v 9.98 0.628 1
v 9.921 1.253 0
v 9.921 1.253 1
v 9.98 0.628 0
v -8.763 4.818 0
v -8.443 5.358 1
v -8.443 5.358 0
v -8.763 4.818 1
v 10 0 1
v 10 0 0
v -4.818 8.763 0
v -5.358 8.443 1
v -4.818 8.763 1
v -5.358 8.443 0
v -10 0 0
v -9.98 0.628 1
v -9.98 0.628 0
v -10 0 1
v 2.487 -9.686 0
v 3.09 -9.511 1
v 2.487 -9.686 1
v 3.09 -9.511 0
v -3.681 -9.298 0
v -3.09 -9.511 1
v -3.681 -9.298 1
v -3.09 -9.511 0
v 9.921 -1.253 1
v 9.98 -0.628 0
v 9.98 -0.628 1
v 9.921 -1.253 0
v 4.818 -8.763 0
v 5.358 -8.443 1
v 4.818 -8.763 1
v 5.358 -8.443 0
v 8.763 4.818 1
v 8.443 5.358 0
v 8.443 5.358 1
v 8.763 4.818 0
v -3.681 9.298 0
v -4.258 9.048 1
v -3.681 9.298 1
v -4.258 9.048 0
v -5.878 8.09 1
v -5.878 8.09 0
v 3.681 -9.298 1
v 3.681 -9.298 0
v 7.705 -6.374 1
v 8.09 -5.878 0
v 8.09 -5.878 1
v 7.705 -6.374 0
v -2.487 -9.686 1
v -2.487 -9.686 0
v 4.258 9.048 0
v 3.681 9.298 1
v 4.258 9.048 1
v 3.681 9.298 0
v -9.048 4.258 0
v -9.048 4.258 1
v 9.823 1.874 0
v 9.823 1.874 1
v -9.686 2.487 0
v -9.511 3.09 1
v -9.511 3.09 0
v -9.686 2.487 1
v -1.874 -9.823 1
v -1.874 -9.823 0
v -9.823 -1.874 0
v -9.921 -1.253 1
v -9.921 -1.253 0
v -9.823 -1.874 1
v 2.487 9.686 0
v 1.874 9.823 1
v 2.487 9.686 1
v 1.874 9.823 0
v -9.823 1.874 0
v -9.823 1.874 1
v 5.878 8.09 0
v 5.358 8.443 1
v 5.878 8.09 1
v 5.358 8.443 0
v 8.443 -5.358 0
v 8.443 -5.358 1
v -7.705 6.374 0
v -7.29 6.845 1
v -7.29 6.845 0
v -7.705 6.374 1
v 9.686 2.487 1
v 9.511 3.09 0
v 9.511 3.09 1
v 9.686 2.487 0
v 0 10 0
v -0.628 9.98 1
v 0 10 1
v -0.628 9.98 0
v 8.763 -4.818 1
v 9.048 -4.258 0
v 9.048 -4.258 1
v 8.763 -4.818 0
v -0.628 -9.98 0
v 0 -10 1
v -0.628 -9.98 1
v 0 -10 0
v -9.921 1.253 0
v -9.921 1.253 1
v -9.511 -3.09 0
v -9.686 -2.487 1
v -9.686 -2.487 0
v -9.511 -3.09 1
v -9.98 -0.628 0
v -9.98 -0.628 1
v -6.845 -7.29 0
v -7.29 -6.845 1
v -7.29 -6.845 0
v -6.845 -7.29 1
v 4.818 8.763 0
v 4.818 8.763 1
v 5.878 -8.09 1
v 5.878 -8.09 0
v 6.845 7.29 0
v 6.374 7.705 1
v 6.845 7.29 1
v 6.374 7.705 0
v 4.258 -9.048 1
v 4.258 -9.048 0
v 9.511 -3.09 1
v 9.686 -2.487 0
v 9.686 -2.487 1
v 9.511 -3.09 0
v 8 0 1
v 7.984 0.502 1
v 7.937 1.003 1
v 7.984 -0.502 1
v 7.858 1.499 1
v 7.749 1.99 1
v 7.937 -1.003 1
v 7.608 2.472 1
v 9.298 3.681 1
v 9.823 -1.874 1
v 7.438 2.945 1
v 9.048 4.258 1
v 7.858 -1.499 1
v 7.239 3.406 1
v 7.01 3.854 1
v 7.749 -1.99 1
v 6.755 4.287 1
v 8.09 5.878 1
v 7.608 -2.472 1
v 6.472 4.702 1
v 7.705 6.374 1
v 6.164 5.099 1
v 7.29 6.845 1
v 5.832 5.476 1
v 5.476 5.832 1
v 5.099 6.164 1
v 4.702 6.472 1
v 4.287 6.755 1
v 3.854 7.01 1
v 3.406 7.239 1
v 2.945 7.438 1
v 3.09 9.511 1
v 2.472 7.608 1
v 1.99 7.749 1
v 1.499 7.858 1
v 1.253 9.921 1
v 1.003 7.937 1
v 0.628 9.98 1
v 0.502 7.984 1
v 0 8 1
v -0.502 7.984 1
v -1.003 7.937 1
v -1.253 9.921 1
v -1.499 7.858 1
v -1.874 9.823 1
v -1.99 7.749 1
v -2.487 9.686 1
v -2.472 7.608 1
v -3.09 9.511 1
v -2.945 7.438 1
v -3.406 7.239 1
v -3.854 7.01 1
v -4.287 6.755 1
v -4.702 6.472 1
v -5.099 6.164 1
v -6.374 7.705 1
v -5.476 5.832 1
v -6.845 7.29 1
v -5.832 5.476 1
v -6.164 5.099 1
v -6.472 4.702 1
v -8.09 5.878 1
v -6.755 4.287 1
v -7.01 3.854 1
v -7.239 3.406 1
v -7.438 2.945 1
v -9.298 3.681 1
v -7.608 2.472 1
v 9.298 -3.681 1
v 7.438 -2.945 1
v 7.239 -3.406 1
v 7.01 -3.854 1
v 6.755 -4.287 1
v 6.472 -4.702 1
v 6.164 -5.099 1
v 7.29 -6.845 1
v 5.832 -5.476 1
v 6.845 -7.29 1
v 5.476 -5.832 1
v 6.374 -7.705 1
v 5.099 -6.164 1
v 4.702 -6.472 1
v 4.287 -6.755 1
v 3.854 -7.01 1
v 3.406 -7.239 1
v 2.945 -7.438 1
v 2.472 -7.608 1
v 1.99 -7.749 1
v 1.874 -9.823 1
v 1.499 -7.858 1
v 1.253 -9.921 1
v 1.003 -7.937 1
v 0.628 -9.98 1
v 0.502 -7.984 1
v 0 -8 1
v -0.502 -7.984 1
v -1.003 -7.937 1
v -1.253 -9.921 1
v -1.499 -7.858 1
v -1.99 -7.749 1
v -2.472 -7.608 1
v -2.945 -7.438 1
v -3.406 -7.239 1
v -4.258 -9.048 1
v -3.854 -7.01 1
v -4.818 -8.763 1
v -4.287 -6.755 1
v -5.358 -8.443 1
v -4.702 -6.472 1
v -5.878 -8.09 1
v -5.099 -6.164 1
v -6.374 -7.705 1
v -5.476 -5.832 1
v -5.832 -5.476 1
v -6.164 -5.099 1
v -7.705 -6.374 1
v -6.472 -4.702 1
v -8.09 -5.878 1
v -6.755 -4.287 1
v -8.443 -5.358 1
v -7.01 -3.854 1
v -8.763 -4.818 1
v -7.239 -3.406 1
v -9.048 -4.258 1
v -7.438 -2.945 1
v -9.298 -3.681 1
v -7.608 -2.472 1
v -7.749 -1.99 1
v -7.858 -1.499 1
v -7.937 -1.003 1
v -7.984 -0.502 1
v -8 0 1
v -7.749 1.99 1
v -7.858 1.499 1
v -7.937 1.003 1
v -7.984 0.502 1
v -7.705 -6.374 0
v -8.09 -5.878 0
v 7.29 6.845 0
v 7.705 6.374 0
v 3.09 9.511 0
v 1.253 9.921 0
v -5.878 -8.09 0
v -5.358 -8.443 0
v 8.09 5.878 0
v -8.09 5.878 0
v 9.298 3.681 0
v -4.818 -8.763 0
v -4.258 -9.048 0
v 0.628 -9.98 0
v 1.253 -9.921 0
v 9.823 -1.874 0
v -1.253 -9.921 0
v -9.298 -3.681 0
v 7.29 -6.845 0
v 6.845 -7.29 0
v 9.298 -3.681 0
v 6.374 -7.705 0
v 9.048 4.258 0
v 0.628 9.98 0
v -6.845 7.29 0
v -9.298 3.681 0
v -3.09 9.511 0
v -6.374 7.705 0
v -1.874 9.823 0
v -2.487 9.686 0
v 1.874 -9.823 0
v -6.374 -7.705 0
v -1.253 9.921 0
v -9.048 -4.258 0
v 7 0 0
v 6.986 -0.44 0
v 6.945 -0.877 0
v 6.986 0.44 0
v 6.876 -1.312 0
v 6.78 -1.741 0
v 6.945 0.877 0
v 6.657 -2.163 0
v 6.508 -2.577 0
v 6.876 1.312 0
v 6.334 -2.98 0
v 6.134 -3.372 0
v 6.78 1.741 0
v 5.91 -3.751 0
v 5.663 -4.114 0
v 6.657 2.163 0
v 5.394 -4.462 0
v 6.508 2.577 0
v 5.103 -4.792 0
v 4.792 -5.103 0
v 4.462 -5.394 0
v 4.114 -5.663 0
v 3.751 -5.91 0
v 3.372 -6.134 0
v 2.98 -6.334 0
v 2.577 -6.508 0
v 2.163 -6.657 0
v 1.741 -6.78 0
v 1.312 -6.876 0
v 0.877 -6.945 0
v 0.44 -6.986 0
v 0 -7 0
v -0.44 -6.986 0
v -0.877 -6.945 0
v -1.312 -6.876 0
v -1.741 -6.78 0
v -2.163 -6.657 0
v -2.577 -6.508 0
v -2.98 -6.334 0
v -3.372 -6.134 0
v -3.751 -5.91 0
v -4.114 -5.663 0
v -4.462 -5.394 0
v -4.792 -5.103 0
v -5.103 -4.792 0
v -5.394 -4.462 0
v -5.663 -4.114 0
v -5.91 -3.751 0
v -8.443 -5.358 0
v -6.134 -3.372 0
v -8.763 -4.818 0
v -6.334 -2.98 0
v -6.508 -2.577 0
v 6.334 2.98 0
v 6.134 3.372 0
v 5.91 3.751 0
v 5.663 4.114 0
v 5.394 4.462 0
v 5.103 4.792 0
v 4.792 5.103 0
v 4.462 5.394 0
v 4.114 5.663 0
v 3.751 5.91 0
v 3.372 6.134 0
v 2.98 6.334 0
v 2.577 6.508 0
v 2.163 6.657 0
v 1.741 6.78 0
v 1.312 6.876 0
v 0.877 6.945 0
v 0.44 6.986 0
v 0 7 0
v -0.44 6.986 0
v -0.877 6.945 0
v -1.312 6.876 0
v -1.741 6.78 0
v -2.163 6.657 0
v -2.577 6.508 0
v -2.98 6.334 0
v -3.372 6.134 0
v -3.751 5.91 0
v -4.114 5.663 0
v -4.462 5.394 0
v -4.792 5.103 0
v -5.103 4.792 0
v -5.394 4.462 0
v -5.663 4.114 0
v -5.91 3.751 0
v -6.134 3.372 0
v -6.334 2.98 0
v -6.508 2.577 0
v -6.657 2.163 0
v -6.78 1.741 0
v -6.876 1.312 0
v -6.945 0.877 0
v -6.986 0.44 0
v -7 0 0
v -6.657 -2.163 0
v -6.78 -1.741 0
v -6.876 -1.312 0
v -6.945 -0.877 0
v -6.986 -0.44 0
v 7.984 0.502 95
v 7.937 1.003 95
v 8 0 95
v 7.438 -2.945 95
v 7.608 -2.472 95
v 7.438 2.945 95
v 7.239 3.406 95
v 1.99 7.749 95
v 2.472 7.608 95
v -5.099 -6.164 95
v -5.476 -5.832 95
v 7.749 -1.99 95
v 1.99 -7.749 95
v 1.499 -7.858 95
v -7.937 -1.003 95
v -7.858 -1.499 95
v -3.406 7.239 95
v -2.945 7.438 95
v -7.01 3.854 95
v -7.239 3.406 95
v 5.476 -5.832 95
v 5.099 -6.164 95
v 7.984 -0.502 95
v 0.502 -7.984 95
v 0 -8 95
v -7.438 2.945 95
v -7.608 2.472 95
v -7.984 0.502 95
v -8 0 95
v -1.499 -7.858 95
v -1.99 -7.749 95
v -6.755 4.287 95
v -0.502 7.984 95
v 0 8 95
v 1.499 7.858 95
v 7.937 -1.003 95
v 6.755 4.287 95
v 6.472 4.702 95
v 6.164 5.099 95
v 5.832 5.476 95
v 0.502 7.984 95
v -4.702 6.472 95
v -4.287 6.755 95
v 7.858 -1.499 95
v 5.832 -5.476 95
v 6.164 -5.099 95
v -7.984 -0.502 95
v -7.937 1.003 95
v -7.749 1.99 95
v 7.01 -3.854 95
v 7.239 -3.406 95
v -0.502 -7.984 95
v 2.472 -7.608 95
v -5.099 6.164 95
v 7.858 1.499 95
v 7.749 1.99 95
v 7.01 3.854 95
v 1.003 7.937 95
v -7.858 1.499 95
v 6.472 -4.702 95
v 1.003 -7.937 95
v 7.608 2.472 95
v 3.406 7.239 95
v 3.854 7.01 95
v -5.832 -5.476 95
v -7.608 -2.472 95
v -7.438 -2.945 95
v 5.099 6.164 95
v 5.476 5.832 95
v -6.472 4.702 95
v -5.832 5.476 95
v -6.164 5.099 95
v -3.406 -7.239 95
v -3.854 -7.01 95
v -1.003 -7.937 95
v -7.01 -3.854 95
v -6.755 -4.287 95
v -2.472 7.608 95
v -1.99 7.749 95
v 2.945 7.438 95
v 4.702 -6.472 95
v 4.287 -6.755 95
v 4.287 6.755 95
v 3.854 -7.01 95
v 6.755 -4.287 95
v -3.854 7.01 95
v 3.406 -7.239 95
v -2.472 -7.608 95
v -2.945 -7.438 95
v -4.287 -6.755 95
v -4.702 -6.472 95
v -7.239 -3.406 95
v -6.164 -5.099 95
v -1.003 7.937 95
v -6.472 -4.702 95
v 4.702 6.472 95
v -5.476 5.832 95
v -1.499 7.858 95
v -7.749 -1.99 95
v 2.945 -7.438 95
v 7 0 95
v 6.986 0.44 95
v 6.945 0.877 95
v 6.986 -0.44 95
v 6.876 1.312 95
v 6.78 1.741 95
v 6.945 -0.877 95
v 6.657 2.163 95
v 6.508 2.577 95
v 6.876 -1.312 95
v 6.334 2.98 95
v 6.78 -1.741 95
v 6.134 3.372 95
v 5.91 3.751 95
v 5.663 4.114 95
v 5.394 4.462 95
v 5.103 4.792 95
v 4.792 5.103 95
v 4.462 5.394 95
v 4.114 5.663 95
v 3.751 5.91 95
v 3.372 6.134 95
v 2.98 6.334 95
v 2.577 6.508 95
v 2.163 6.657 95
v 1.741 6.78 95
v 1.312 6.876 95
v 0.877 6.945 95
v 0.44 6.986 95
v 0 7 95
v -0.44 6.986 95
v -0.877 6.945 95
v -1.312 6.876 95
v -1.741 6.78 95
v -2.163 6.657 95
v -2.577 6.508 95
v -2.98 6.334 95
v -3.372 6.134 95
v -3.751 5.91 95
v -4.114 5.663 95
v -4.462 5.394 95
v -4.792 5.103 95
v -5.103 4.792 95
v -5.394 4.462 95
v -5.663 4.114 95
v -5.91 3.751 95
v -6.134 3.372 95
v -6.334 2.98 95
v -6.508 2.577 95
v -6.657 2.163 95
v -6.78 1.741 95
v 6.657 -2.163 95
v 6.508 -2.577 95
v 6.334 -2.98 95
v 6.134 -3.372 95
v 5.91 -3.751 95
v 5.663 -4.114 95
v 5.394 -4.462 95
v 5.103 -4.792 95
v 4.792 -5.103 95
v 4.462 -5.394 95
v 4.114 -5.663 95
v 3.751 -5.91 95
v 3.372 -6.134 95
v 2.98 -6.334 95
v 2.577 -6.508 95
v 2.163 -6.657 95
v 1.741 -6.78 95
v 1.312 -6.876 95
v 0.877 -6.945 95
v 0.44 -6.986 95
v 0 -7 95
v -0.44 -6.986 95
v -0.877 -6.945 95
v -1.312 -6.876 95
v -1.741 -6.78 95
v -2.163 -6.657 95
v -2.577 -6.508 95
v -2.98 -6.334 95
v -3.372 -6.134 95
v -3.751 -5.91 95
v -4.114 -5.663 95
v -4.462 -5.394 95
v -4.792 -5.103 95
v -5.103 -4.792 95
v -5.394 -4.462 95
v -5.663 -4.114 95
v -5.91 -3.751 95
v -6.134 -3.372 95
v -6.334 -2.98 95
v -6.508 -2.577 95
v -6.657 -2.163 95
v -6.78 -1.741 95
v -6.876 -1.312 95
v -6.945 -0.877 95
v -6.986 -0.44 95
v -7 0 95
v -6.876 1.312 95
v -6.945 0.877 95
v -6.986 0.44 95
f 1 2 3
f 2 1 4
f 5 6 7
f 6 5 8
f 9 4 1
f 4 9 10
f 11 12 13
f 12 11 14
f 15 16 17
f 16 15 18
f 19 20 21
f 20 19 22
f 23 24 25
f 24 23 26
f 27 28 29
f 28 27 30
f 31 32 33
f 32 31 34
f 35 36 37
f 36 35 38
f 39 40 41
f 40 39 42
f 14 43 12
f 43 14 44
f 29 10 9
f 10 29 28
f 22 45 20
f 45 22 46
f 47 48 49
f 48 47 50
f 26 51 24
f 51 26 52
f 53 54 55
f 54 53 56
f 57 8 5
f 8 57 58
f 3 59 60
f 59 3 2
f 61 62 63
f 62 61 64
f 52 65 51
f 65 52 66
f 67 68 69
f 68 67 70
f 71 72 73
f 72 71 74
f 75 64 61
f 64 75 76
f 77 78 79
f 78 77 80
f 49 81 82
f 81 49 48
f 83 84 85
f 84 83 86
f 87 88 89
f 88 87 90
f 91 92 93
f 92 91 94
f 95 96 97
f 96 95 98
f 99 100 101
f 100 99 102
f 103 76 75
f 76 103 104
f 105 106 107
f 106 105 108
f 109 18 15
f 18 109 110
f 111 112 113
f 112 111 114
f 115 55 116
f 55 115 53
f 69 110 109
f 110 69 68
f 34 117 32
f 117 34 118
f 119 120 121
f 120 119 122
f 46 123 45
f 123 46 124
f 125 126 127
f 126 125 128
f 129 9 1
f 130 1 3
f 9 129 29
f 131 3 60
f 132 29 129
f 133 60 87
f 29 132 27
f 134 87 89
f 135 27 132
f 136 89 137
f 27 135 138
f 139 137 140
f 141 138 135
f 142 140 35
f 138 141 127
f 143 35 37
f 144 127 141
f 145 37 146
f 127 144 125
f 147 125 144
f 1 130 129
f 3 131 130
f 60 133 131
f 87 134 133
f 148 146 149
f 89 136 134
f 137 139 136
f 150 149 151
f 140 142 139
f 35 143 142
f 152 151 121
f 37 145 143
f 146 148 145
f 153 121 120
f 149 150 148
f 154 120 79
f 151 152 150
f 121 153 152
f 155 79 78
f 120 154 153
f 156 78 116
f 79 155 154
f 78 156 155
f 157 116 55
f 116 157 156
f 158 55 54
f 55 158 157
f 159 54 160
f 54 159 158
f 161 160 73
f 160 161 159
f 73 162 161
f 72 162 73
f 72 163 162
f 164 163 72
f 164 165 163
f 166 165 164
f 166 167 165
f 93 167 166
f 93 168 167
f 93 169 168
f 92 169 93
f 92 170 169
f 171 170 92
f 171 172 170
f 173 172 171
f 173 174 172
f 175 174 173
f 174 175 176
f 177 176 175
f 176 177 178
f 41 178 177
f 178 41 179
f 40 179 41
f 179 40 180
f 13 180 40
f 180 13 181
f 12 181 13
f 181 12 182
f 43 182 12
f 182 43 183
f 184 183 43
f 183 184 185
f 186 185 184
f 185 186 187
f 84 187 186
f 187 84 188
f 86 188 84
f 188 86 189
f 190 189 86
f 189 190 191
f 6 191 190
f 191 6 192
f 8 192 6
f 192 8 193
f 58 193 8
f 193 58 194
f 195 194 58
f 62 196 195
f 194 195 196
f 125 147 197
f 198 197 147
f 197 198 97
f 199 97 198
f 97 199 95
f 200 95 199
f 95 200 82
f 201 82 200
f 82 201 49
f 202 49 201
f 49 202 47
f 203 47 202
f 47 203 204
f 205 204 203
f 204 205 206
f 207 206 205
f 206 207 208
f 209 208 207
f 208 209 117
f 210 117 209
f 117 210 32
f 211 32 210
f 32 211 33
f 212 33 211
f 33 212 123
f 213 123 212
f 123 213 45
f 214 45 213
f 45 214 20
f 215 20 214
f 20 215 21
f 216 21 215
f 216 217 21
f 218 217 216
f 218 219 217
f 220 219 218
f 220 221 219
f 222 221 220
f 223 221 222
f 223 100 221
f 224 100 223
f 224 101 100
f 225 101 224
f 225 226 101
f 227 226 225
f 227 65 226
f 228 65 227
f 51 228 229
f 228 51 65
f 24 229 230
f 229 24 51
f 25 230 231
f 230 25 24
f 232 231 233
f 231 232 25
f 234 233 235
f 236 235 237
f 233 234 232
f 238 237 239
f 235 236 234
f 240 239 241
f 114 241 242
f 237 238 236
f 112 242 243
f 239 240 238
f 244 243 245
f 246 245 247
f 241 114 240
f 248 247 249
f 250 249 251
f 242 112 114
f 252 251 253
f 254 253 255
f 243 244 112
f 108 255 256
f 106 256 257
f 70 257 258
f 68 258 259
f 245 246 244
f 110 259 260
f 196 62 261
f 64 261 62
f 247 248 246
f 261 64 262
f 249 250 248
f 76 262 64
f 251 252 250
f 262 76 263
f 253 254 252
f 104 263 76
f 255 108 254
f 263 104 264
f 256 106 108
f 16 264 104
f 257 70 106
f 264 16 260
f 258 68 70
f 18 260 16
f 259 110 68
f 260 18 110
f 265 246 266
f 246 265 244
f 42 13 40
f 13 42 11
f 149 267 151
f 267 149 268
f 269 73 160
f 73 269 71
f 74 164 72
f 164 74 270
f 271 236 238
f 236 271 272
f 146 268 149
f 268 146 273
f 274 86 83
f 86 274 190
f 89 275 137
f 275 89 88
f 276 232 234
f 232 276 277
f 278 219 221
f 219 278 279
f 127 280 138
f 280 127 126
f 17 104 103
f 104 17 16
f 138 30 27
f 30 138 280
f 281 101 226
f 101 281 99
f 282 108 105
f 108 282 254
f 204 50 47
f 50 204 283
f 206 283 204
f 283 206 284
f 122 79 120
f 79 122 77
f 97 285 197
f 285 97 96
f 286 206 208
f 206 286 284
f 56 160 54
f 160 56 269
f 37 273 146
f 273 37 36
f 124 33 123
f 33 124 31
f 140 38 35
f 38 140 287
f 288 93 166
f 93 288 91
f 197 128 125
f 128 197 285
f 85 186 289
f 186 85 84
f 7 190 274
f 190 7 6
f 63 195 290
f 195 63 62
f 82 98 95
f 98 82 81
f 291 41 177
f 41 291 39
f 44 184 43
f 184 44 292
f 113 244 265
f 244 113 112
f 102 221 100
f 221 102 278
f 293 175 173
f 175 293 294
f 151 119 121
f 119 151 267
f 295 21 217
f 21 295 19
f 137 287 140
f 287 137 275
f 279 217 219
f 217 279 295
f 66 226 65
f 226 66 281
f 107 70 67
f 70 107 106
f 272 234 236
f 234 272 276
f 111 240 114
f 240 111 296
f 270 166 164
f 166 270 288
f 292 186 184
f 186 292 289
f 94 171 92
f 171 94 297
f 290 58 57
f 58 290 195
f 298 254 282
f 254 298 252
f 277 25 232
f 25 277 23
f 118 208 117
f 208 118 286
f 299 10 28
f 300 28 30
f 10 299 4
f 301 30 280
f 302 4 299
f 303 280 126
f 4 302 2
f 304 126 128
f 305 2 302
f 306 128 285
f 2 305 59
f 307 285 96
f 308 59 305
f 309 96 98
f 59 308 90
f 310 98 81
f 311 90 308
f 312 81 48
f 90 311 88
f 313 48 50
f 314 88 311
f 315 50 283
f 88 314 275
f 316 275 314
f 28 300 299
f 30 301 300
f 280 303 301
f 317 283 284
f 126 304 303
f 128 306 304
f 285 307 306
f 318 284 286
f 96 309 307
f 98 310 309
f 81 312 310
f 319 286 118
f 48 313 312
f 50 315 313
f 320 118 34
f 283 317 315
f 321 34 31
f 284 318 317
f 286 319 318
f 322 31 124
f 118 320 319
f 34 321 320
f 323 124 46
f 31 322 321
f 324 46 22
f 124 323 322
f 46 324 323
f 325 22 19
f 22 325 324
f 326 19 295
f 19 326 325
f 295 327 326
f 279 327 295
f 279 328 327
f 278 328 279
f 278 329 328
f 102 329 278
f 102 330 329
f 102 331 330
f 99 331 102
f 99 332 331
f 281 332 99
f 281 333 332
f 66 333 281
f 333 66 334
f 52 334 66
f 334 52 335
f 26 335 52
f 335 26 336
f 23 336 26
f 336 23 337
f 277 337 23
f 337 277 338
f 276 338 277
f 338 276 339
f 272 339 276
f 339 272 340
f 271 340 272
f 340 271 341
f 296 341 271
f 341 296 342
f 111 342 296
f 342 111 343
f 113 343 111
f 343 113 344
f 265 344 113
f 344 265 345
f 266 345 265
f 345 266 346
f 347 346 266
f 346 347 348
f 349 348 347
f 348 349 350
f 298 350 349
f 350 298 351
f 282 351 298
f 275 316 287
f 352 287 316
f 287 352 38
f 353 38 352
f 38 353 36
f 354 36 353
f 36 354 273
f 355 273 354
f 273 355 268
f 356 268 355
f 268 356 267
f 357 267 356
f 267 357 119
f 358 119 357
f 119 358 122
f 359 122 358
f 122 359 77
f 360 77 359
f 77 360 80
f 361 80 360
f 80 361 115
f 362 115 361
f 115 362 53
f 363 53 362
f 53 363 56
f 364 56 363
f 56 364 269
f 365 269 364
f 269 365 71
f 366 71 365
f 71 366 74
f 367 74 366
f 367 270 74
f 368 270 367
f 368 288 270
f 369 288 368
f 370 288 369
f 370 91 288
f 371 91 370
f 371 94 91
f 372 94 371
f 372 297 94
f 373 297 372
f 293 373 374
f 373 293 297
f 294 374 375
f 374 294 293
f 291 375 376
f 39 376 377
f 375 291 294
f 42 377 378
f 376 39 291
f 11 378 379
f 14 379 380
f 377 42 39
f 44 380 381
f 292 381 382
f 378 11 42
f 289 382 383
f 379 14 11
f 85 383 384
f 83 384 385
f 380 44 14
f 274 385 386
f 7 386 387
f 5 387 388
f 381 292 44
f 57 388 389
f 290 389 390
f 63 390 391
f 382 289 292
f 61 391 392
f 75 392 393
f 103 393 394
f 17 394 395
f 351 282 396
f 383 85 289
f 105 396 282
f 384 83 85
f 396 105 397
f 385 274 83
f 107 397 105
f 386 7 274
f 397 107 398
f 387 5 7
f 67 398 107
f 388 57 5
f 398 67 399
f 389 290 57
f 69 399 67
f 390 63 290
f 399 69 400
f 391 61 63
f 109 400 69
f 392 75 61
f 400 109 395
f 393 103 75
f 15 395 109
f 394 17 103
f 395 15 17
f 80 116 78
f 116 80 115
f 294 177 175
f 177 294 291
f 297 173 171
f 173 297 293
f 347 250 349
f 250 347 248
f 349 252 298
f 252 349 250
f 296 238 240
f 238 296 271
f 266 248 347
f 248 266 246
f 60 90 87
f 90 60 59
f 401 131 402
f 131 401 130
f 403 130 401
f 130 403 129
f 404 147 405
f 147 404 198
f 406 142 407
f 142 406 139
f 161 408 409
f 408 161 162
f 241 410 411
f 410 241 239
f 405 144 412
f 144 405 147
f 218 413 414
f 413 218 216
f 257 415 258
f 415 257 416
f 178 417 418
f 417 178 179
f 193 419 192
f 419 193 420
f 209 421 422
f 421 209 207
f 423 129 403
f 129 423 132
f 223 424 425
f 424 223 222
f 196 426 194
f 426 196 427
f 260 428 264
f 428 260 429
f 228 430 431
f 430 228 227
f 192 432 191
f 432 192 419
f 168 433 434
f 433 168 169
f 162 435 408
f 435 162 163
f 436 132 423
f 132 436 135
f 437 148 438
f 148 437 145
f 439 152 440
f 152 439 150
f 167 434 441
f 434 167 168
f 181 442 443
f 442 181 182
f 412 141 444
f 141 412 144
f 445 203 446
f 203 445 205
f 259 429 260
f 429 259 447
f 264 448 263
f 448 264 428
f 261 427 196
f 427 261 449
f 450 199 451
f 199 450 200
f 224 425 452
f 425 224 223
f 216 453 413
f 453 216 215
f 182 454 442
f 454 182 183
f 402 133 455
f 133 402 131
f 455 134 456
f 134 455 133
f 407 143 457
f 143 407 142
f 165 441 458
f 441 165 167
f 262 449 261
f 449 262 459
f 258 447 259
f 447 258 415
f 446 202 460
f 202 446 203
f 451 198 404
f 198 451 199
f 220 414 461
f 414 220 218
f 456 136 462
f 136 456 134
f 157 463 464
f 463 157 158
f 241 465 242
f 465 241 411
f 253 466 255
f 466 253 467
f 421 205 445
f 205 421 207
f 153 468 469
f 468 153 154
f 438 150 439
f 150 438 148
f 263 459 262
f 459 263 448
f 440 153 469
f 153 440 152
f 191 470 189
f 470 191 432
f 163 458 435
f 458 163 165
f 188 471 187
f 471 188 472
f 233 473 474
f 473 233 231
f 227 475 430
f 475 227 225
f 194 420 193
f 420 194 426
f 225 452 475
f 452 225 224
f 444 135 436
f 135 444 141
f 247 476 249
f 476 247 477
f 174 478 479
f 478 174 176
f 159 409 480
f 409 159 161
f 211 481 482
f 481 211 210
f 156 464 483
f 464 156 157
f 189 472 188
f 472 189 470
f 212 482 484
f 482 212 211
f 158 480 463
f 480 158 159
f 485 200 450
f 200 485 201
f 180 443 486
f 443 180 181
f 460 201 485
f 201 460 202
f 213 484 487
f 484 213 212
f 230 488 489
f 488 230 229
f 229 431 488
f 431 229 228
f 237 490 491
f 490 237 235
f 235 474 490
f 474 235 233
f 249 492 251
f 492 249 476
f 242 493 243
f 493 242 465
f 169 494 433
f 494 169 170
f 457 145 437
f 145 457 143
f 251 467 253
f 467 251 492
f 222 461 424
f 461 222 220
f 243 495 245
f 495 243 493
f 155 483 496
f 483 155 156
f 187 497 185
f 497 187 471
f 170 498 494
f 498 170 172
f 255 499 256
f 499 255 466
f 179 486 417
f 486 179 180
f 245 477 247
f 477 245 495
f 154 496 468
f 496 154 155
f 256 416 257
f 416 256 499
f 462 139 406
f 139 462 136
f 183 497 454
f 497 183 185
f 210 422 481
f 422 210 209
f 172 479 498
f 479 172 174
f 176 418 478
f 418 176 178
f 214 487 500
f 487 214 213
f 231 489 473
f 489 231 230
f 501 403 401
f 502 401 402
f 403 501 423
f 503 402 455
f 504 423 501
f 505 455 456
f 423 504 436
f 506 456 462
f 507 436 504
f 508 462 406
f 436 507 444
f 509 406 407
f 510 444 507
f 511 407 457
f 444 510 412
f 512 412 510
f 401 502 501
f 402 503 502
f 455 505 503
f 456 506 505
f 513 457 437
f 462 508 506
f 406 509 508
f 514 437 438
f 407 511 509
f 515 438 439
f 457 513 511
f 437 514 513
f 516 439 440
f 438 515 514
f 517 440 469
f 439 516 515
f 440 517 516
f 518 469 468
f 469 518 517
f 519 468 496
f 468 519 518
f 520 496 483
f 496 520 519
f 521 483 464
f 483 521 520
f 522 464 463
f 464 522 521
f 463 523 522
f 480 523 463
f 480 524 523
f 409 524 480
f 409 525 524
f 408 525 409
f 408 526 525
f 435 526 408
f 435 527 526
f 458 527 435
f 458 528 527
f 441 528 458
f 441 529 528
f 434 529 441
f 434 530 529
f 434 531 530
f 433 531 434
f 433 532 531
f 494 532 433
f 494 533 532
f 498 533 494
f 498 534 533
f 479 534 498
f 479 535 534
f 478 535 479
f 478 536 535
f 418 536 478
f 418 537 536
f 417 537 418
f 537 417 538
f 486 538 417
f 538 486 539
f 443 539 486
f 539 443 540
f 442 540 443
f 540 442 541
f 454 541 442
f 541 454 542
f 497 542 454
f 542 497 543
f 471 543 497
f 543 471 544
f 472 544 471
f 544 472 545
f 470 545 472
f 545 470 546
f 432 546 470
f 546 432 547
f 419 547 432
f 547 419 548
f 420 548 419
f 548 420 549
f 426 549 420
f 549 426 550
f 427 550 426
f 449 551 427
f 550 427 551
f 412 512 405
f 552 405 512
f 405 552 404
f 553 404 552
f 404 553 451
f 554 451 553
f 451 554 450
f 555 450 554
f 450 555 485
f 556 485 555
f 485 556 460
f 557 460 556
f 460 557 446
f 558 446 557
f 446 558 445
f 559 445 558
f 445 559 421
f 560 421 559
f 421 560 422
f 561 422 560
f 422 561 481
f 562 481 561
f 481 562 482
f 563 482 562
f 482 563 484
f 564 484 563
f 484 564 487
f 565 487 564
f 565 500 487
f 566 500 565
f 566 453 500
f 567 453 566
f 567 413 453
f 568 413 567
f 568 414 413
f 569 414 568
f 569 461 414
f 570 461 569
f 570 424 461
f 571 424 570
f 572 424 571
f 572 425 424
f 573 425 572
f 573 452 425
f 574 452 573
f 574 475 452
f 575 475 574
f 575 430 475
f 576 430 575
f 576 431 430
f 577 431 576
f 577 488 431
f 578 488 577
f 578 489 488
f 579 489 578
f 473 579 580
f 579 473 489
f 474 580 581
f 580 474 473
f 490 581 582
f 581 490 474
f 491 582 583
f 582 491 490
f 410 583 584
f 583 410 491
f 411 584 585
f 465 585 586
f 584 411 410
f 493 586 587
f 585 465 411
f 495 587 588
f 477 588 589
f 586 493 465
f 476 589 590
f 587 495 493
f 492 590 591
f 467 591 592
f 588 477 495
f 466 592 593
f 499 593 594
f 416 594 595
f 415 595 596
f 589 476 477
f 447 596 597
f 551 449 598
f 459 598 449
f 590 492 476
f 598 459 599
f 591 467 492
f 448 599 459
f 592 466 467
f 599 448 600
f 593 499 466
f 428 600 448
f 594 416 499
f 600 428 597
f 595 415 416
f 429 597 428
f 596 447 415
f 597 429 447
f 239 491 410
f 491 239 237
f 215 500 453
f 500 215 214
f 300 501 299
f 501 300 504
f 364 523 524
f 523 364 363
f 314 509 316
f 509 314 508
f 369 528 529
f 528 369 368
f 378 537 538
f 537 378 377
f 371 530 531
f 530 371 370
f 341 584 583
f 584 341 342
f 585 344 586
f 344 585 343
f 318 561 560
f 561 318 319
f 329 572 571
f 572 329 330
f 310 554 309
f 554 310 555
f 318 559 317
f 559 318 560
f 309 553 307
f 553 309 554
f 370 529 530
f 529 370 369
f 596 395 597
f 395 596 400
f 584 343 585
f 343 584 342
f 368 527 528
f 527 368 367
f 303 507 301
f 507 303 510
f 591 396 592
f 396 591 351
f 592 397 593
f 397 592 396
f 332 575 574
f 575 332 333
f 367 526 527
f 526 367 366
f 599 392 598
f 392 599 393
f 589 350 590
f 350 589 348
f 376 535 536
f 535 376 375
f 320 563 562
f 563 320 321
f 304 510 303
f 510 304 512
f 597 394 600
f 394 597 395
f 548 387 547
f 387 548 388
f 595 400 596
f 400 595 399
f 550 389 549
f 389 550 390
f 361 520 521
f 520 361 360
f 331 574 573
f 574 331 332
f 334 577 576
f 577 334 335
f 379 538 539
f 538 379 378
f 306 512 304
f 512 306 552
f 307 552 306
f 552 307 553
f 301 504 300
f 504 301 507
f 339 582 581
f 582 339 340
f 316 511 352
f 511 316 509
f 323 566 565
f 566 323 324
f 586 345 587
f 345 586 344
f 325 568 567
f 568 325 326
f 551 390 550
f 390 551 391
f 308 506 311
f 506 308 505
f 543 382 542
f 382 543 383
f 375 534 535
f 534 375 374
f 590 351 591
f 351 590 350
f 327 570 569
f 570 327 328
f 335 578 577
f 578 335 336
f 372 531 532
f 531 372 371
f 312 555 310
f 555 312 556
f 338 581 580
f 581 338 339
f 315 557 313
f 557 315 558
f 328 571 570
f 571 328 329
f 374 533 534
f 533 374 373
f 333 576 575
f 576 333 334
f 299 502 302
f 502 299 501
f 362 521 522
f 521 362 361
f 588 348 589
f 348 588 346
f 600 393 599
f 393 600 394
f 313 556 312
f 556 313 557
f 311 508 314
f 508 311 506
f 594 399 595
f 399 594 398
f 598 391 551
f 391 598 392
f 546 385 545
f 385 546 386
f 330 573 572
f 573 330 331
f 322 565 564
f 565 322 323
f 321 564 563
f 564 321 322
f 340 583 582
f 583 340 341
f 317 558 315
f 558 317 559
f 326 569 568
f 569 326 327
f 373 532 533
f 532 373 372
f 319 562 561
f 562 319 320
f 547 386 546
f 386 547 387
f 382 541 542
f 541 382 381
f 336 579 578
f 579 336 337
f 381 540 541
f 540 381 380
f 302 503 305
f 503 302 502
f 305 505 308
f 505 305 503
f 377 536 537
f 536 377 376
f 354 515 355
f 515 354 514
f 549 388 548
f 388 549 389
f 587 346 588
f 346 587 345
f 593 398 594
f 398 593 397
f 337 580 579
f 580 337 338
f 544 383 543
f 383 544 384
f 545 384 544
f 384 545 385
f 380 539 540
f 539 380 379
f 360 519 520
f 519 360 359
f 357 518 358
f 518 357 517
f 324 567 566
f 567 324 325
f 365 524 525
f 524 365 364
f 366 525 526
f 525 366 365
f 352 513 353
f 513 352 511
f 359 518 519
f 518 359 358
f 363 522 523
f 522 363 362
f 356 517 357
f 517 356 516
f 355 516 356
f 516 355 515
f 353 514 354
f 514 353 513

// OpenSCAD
$fn =100;

difference() {
    
   union() {
       linear_extrude(height=1) {
        circle(10);
       }
linear_extrude(height=95) {
circle(8);
    
}
}

translate([0,0,-10]) {
linear_extrude(height=120) {
circle(7);
    
}
}
}
